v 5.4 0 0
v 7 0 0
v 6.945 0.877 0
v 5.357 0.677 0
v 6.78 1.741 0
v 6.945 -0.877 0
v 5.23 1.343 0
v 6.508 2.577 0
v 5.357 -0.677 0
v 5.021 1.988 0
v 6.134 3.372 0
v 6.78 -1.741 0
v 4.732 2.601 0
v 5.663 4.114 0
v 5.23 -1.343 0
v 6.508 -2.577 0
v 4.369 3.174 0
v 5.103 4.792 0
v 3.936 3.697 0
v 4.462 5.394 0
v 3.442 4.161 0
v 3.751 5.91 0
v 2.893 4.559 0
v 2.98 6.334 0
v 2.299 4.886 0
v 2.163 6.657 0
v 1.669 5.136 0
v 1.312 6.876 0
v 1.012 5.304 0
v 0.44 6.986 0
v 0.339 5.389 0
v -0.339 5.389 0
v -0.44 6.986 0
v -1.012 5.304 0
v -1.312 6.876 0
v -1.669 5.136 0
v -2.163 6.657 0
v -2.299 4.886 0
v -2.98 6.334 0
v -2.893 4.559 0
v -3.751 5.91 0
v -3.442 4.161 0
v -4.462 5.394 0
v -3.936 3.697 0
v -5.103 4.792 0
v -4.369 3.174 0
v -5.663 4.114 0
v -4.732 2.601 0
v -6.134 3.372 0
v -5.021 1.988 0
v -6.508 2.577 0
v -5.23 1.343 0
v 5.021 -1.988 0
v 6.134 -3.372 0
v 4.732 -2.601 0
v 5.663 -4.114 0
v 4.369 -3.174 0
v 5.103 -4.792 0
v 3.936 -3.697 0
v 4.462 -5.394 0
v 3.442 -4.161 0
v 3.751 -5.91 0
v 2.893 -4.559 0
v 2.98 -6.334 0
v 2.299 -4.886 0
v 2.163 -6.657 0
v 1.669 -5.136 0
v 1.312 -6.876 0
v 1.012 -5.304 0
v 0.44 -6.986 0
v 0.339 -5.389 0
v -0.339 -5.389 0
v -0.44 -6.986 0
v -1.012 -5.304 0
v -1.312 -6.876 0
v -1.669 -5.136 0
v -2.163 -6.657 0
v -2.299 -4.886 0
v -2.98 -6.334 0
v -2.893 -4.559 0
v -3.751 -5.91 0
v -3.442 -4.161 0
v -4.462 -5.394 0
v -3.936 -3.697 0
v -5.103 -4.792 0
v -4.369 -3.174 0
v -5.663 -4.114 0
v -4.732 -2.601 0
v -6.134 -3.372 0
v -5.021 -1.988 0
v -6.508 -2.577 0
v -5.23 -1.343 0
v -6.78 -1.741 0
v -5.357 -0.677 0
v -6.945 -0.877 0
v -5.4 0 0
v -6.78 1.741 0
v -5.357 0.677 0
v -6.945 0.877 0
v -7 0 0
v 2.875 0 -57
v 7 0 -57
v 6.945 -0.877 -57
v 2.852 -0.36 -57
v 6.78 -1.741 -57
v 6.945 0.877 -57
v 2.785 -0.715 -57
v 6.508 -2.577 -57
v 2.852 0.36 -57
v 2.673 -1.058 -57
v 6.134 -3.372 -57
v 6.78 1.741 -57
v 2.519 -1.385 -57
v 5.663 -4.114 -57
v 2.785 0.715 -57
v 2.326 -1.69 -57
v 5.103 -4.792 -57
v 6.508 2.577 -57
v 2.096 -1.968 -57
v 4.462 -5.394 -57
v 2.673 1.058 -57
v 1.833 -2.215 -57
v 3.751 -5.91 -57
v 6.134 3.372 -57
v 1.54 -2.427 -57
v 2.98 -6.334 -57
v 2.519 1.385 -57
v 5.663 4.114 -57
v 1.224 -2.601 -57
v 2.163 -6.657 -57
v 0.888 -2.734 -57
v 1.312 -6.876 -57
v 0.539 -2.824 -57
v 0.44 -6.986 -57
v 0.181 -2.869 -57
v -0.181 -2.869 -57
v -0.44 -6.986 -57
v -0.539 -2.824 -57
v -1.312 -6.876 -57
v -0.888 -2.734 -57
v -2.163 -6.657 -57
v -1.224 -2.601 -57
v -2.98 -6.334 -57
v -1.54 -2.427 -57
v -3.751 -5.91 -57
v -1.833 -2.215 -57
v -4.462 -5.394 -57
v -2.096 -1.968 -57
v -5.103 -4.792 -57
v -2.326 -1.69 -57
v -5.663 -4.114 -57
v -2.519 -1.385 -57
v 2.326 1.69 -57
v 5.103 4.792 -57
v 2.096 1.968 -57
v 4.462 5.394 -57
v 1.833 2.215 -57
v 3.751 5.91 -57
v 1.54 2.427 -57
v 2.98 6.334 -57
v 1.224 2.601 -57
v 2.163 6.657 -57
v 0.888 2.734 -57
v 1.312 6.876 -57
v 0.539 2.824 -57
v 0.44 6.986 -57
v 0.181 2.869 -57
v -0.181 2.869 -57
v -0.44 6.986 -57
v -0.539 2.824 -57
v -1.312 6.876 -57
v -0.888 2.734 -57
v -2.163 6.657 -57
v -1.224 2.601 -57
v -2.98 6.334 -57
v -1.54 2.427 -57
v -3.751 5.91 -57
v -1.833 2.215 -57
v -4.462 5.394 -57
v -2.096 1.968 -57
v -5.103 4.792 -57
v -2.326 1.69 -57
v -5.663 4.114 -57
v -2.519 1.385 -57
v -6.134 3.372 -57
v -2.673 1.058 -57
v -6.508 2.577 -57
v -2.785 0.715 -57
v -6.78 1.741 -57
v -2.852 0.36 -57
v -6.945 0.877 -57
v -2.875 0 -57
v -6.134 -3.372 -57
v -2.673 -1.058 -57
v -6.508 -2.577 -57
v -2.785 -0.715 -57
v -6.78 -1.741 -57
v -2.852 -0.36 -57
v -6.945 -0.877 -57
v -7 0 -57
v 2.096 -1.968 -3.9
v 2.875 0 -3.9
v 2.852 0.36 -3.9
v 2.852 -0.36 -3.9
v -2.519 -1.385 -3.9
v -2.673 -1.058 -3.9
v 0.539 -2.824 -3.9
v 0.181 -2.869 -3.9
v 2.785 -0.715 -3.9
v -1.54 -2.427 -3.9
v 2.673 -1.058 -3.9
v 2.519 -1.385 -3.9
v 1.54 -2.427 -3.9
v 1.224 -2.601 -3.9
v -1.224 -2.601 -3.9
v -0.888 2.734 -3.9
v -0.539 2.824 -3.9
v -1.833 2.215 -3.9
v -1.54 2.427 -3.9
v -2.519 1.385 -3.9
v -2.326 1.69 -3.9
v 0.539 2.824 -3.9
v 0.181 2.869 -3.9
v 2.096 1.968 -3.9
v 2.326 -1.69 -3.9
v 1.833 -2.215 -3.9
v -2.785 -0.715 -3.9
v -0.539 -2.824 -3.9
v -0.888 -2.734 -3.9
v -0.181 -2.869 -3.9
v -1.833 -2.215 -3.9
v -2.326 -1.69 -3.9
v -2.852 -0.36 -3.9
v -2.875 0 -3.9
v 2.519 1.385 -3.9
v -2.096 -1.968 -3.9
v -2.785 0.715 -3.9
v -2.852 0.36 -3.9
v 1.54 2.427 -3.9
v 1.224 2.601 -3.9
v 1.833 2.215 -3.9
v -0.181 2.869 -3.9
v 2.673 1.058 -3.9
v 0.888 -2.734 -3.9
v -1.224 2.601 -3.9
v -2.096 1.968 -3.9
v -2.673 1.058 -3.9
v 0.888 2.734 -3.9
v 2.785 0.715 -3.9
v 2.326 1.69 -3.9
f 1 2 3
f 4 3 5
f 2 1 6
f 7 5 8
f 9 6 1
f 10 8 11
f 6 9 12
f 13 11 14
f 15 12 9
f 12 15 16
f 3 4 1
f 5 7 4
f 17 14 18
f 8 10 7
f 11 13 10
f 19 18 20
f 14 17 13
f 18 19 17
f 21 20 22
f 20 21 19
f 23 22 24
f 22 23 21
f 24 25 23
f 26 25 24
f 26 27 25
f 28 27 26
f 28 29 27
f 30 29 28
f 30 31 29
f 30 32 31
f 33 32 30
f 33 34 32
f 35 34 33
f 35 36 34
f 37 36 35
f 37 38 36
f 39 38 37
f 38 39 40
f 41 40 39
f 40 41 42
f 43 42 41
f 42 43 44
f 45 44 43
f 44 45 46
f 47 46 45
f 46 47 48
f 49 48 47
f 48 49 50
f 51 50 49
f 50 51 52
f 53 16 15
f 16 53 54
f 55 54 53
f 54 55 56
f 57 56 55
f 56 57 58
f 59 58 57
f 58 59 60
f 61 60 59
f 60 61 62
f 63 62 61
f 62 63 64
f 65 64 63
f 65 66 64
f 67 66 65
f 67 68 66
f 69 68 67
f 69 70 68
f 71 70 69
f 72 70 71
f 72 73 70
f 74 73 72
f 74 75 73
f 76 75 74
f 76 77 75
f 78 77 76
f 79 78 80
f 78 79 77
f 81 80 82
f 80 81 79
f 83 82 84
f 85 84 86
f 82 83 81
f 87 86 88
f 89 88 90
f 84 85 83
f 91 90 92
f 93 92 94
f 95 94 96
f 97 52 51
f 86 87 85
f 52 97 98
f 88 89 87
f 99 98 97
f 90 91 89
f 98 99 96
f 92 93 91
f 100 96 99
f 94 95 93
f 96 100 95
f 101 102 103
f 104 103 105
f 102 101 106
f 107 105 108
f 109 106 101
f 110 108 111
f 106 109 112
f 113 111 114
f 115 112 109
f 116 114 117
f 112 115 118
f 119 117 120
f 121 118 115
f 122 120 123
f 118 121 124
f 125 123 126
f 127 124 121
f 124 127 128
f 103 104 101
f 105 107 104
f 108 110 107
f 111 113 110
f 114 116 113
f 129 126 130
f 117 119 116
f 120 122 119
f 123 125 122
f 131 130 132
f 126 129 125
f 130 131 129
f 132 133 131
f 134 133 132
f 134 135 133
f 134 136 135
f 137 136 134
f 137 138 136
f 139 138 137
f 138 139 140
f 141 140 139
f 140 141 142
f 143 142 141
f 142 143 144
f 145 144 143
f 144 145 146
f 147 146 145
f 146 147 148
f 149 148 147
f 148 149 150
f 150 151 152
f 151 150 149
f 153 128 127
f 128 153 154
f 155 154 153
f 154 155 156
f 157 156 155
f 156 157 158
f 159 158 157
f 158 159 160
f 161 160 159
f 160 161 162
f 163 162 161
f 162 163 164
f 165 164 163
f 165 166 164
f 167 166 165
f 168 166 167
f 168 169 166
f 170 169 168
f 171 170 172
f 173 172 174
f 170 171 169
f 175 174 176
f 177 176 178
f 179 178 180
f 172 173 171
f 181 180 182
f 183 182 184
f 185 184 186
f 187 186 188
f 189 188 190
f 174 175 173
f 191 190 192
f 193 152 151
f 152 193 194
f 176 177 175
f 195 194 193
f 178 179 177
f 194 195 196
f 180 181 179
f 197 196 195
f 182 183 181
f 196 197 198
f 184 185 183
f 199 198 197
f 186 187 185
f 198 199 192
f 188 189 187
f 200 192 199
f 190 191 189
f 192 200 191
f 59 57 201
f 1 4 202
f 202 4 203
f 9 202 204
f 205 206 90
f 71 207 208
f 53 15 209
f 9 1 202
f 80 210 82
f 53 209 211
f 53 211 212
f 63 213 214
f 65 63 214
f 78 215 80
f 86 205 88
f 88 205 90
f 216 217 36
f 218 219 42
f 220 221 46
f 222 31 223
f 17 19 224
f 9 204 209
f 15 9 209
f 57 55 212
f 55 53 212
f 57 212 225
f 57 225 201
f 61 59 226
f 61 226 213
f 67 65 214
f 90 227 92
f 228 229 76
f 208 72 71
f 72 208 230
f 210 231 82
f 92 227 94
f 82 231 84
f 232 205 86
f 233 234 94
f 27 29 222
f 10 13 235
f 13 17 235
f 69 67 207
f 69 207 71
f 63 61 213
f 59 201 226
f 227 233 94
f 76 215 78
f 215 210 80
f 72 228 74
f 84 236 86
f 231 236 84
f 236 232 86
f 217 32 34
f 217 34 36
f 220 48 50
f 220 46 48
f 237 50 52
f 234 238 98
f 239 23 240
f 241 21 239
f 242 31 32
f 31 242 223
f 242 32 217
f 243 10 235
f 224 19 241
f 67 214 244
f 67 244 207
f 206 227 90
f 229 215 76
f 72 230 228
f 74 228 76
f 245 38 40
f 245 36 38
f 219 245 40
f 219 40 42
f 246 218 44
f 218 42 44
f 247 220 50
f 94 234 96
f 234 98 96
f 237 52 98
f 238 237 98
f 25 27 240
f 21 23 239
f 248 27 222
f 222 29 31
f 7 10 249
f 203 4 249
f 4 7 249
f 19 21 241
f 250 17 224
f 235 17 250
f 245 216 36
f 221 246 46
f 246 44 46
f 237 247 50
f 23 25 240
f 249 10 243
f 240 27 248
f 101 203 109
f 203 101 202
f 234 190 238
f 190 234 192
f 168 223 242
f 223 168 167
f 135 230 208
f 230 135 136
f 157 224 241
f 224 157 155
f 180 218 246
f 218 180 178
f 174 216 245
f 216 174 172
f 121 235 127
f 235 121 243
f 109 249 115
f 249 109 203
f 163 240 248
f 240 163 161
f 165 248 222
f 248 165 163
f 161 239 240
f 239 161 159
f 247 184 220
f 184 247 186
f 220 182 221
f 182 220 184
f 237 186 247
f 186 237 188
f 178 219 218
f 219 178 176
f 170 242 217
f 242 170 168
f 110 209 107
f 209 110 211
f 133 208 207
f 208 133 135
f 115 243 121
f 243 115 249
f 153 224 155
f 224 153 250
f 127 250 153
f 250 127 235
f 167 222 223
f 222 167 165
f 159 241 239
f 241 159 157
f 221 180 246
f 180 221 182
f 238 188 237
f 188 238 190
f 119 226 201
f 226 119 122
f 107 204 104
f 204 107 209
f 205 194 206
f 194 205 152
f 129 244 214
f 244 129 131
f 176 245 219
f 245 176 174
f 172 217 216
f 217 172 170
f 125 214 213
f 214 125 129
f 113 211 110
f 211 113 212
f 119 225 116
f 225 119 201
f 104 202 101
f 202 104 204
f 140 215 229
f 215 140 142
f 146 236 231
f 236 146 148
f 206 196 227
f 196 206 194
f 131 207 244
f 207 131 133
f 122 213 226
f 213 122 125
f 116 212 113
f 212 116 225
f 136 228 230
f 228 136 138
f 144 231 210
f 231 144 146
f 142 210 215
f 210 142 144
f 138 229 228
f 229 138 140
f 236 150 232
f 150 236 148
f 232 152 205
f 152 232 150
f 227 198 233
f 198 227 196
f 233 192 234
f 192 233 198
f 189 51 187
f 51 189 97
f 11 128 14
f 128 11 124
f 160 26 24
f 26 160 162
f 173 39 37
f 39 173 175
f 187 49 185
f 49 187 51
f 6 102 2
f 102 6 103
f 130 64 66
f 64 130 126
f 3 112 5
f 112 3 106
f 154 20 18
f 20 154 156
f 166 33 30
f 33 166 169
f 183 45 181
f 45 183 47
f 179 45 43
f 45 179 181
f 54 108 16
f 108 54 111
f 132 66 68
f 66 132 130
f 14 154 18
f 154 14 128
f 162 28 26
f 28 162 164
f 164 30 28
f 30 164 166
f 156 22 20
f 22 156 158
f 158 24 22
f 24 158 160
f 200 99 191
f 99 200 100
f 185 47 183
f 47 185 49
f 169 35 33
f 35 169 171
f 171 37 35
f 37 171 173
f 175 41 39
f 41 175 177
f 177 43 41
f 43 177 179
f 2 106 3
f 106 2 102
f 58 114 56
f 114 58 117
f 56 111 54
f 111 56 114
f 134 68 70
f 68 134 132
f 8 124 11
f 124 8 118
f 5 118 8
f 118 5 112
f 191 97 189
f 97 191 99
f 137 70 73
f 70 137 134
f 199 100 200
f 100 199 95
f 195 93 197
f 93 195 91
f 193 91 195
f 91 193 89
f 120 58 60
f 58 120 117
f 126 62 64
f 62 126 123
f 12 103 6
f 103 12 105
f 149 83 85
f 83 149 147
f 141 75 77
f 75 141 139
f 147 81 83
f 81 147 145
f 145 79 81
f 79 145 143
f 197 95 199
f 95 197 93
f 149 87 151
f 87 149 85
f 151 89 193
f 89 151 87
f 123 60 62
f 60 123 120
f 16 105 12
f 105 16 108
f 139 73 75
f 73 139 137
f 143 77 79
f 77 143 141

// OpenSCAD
$fn = 50;


difference() {
	union() {
		translate(v = [0, 0, -57.0000000000]) {
			cylinder(h = 57, r = 7.0000000000);
		}
		cylinder(h = 0, r = 17.0000000000);
	}
	union() {
		translate(v = [0, 0, 0]) {
			rotate(a = [0, 0, 0]) {
				difference() {
					union() {
						#translate(v = [0, 0, -57.0000000000]) {
							cylinder(h = 57, r = 2.6000000000);
						}
						#translate(v = [0, 0, -3.9000000000]) {
							cylinder(h = 3.9000000000, r1 = 2.8750000000, r2 = 5.4000000000);
						}
						#translate(v = [0, 0, -57.0000000000]) {
							cylinder(h = 57, r = 2.8750000000);
						}
						#translate(v = [0, 0, -57.0000000000]) {
							cylinder(h = 57, r = 2.6000000000);
						}
					}
					union();
				}
			}
		}
	}
}
